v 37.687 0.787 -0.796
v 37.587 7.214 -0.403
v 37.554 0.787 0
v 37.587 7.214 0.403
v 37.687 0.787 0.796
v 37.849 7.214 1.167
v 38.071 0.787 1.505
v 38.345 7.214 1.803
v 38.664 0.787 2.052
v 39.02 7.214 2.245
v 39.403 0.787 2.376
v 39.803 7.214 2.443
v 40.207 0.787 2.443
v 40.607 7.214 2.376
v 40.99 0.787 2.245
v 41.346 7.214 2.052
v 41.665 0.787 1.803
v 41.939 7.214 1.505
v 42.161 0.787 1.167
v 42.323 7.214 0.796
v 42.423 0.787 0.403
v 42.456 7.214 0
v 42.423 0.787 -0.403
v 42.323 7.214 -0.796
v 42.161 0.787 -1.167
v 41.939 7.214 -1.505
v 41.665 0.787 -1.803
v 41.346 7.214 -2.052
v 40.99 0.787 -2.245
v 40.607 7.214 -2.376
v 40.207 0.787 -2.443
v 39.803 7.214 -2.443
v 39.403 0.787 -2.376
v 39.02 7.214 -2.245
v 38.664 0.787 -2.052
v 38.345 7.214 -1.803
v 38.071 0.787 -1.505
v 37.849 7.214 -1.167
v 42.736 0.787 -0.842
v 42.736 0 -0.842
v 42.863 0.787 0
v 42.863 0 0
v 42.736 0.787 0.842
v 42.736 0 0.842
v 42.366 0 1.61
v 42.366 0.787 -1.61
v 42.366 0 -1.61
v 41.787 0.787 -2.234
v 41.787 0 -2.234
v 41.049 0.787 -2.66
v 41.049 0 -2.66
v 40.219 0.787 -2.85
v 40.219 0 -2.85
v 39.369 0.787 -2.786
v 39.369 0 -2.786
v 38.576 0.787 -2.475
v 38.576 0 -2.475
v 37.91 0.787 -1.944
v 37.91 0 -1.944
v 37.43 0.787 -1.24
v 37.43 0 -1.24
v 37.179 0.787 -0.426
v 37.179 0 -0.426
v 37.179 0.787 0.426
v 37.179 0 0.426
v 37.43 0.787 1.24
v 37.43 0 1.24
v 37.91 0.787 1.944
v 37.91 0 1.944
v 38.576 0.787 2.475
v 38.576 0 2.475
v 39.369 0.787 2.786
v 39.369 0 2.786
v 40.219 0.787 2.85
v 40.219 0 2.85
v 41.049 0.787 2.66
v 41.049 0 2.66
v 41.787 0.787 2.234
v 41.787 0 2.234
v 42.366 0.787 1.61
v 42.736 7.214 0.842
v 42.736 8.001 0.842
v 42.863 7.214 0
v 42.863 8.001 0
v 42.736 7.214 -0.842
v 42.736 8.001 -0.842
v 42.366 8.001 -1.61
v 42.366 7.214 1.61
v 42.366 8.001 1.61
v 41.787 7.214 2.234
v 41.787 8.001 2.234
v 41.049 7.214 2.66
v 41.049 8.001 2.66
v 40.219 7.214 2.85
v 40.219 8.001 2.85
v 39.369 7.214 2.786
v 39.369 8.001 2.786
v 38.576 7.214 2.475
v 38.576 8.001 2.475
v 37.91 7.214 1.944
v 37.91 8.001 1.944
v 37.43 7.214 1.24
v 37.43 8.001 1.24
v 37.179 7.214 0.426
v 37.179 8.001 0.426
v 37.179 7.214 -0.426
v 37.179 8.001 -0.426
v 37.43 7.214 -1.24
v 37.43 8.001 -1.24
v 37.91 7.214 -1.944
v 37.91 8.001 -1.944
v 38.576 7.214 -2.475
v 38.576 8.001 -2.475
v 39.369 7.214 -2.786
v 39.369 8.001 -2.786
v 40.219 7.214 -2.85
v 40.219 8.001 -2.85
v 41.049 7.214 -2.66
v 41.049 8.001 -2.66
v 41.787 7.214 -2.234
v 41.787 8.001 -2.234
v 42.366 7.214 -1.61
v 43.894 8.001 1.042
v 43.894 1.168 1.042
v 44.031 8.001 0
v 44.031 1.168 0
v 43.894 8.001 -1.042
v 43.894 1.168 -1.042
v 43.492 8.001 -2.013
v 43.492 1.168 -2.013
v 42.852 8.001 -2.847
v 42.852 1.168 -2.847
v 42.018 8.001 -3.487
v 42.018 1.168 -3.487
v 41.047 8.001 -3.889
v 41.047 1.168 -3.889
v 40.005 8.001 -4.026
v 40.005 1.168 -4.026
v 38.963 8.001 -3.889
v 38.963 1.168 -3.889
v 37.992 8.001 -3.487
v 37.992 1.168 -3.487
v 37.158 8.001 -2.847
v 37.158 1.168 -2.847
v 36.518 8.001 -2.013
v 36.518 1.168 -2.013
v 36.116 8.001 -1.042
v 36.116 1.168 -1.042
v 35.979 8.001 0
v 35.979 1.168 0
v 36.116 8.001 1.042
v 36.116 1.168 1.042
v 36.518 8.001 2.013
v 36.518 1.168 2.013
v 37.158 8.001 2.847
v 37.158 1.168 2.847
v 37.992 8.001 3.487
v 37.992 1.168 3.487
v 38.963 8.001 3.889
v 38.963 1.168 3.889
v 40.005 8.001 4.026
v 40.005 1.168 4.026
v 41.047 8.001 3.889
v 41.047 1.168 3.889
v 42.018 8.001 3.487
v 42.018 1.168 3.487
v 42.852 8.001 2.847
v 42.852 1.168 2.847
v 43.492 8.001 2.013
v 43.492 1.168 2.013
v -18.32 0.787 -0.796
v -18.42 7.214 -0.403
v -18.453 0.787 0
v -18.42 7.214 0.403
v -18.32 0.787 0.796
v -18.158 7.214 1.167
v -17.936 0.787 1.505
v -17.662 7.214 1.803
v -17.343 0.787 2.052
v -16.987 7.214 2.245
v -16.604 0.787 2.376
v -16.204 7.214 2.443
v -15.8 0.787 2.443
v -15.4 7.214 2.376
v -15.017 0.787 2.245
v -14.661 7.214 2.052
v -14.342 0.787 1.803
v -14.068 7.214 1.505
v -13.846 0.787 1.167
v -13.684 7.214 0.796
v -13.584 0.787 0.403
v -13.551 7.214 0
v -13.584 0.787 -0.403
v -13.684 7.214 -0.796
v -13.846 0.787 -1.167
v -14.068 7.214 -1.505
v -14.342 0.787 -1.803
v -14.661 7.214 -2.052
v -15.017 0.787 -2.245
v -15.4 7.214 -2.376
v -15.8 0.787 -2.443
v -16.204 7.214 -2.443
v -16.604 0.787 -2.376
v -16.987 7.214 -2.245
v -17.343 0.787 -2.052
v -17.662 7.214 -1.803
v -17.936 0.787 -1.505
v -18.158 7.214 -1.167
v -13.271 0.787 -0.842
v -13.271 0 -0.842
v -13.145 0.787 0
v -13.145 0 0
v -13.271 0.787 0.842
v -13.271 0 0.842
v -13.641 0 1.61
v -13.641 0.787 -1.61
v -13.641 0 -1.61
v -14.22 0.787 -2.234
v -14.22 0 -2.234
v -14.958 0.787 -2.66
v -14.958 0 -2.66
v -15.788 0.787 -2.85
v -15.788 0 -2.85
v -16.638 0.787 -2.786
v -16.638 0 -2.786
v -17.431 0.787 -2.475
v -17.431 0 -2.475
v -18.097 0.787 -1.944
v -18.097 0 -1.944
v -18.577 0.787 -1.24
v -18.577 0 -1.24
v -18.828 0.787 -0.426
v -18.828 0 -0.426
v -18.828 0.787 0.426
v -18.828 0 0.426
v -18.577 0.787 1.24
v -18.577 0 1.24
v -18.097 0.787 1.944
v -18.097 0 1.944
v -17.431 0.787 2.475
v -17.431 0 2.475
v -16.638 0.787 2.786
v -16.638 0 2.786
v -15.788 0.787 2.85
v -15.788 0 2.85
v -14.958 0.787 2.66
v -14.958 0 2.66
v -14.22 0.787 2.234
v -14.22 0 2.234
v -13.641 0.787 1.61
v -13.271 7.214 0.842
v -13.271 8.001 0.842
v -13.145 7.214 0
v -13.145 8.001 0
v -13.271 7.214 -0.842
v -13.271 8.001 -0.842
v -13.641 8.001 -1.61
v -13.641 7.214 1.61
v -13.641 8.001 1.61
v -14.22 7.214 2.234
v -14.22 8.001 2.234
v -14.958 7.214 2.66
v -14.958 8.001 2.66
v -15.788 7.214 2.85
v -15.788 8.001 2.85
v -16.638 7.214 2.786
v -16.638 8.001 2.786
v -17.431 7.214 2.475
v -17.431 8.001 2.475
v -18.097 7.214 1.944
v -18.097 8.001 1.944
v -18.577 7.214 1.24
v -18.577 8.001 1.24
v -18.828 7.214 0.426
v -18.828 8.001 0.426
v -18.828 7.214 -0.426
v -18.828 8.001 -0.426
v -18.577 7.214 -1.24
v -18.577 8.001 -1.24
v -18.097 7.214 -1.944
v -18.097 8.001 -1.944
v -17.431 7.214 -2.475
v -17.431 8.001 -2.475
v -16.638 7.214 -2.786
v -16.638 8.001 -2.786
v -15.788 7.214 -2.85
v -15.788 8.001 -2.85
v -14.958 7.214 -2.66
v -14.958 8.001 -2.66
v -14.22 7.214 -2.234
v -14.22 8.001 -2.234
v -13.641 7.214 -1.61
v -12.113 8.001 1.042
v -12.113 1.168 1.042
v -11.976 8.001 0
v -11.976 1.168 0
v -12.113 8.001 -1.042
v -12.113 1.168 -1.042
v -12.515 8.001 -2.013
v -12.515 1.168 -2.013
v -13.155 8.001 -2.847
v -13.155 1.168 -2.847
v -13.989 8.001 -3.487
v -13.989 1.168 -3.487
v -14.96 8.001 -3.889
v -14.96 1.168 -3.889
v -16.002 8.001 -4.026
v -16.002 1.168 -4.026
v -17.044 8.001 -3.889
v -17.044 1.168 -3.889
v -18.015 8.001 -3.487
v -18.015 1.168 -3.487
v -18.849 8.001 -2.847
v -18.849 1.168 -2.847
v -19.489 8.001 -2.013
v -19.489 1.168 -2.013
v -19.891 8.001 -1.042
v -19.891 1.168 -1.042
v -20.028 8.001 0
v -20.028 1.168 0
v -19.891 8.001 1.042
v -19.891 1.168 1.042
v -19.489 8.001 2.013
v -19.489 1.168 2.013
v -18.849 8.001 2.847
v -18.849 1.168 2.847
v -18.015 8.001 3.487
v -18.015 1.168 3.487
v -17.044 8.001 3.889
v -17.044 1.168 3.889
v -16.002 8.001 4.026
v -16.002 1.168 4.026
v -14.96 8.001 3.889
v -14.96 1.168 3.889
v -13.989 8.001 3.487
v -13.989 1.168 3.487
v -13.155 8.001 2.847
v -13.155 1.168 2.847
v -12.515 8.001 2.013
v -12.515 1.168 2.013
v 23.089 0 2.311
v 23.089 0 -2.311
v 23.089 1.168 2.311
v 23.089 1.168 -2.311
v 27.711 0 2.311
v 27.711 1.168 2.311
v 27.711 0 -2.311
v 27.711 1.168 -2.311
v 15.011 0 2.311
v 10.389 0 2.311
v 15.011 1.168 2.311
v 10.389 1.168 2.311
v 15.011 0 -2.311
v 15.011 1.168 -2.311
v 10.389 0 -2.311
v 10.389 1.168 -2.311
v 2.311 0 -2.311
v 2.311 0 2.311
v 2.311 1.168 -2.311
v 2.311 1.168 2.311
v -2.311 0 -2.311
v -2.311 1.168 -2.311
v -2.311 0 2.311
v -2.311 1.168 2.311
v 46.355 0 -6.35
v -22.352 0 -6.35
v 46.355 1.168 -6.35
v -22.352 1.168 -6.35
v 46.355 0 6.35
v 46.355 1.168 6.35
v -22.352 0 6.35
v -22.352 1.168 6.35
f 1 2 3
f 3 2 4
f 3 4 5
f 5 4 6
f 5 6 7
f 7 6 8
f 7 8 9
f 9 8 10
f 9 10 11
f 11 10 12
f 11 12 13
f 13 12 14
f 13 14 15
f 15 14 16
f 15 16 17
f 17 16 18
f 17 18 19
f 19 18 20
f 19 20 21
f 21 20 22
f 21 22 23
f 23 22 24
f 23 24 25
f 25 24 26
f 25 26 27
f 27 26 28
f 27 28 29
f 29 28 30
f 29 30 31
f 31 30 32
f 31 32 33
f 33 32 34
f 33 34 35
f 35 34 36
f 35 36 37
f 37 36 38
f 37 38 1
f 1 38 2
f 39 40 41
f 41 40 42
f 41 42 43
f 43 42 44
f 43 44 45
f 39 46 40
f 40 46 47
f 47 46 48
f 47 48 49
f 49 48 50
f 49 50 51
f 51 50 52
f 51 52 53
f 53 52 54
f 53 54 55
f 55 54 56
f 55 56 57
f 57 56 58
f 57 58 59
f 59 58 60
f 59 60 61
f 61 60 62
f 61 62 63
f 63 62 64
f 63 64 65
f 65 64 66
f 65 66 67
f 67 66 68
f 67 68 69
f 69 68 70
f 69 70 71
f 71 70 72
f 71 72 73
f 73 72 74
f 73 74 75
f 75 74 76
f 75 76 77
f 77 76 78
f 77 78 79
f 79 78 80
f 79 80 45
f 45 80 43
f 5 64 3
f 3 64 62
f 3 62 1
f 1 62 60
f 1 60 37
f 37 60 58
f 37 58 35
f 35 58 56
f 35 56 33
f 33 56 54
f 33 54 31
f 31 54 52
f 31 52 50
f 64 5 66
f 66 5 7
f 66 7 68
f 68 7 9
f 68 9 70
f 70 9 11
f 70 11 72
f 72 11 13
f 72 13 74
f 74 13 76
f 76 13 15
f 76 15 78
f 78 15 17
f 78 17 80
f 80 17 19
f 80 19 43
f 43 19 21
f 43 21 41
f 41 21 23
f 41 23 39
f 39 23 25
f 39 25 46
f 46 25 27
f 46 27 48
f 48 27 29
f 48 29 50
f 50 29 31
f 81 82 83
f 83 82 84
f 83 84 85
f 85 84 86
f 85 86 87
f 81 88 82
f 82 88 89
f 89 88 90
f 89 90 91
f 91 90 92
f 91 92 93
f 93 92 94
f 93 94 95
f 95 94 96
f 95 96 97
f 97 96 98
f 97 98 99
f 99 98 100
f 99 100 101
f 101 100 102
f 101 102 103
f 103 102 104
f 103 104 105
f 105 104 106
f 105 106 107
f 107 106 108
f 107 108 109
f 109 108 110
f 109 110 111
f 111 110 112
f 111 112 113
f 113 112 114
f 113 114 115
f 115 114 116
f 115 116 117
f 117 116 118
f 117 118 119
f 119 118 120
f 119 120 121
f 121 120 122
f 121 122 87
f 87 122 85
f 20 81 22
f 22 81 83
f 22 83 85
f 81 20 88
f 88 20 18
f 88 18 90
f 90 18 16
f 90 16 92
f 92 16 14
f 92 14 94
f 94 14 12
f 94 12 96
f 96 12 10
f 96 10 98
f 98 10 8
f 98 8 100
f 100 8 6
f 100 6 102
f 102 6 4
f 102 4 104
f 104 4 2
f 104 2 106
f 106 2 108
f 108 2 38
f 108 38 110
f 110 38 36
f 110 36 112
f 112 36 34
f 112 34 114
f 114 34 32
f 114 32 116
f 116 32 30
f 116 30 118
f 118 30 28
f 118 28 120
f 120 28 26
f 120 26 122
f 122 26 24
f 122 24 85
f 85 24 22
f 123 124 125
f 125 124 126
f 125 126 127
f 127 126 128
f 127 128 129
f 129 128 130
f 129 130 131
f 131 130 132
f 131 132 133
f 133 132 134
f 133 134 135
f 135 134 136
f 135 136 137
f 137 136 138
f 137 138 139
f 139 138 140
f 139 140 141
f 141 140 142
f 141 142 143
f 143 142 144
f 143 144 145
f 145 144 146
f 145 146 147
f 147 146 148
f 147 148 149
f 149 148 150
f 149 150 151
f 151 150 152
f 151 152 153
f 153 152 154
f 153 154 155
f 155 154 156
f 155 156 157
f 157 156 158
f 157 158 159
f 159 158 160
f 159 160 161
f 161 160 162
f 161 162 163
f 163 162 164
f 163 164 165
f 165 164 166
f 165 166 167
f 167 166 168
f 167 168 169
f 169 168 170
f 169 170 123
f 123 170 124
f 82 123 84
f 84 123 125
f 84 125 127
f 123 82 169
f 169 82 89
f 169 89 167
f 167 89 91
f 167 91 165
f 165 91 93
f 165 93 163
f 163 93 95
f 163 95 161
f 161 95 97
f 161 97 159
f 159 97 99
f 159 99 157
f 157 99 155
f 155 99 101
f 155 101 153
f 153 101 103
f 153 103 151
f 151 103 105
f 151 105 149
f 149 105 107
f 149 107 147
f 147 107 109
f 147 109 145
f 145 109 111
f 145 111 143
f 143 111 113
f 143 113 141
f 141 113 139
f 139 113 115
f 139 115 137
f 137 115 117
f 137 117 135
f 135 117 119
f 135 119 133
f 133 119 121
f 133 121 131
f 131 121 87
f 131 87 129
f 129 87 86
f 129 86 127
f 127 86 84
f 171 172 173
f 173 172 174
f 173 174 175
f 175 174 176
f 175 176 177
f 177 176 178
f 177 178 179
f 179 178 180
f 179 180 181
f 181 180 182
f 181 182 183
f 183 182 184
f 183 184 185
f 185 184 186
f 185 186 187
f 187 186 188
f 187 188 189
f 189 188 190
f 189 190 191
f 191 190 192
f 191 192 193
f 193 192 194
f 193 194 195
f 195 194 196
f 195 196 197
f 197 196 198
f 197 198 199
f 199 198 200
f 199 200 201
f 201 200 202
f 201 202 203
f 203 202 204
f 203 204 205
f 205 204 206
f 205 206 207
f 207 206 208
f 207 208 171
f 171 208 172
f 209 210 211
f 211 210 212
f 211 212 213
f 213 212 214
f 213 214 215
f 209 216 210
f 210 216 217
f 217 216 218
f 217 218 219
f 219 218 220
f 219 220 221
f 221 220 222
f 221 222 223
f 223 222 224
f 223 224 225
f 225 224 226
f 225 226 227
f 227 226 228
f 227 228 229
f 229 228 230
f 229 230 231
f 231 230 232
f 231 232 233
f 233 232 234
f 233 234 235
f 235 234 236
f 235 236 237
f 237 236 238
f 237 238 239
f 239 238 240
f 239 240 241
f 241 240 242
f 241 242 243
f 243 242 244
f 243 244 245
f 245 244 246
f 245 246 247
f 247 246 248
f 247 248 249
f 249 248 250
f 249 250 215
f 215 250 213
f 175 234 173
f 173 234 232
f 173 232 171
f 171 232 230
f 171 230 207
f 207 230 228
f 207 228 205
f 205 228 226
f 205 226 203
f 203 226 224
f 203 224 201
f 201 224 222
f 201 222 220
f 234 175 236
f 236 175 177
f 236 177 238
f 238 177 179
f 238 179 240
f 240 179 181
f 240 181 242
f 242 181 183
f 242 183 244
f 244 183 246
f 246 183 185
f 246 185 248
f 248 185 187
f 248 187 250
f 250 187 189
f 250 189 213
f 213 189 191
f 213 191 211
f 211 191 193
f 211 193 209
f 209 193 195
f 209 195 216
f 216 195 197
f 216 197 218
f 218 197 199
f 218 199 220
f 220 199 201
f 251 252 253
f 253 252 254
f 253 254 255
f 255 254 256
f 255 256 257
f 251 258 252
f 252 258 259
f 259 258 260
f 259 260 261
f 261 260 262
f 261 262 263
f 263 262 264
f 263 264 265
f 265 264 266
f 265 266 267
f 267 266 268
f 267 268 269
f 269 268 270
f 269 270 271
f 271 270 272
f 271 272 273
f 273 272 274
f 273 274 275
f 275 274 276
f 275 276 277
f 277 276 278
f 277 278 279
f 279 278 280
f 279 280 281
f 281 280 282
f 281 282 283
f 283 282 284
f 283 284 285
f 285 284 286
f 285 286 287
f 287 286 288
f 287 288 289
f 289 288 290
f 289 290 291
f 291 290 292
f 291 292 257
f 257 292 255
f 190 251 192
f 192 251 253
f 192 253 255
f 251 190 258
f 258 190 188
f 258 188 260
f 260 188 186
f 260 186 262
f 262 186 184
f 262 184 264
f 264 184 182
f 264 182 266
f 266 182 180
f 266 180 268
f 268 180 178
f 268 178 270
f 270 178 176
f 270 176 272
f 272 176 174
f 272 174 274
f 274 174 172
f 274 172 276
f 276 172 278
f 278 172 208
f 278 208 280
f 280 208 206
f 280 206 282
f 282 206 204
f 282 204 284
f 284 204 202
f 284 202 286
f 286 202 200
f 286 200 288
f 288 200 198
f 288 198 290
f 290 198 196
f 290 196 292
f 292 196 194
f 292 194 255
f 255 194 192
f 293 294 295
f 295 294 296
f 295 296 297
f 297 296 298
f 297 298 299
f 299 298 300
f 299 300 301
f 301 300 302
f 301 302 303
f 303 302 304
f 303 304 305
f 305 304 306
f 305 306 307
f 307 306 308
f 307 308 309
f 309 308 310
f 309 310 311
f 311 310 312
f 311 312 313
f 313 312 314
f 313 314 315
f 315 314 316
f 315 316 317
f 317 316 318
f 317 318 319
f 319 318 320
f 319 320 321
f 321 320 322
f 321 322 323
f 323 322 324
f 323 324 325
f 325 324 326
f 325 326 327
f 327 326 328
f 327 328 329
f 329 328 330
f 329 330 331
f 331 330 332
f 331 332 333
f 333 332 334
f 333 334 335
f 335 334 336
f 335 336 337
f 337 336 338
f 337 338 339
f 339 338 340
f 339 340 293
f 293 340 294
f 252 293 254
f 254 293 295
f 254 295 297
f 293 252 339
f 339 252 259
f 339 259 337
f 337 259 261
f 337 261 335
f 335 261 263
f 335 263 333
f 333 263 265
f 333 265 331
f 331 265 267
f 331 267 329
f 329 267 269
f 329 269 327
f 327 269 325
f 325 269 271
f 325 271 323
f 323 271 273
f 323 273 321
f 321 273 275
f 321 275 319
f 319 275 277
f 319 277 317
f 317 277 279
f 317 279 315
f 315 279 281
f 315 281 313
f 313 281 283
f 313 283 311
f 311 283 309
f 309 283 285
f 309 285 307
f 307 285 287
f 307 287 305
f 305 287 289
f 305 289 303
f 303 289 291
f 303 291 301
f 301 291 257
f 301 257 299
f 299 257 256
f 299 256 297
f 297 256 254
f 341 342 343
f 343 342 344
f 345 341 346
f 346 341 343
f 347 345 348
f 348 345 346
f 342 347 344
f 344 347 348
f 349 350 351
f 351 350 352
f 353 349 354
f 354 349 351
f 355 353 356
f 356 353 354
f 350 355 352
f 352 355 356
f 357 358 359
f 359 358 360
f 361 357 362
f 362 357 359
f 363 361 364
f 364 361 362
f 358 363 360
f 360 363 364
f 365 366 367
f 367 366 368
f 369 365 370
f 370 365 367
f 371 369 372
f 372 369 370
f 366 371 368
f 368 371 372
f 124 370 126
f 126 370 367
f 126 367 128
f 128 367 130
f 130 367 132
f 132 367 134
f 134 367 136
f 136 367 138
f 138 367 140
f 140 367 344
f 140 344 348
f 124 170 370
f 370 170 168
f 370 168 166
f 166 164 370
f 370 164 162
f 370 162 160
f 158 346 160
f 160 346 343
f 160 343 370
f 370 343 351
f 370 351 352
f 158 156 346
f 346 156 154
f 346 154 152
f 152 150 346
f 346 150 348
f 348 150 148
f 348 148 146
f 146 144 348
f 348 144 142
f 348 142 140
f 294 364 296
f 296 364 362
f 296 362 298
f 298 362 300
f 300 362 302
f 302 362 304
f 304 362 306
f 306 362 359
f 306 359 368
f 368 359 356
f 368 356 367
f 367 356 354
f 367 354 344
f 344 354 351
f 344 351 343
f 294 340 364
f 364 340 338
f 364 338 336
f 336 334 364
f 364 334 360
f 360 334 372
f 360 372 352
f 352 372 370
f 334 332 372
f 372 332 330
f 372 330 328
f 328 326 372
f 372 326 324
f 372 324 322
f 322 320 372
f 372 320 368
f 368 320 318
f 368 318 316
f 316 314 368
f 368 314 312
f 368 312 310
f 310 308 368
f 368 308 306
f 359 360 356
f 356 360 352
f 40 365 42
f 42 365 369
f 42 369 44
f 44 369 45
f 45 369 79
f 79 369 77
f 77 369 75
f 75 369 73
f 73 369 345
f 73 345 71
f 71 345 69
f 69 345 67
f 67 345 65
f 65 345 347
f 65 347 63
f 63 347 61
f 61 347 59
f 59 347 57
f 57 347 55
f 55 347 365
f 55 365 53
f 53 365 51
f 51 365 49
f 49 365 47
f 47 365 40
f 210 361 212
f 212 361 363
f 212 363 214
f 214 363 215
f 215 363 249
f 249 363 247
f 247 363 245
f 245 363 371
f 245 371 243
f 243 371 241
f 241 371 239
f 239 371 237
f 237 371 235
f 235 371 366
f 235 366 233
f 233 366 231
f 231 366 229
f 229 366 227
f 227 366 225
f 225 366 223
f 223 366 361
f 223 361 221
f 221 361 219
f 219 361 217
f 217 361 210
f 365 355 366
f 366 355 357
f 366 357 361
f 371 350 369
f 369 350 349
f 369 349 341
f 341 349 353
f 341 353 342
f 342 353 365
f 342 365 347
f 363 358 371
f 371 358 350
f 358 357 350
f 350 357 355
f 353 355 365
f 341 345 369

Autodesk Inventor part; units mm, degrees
ref_plane "YZ Plane" through (0, 0, 0) normal (1, 0, 0) x (0, 1, 0)
ref_plane "XZ Plane" through (0, 0, 0) normal (0, 1, 0) x (-1, 0, 0)
ref_plane "XY Plane" through (0, 0, 0) normal (0, 0, 1) x (1, 0, 0)
sketch "Sketch1" plane through (0, 0, 0) normal (0, 1, 0) x (-1, 0, 0)
  line L0 (22.352, 6.35) -> (-46.355, 6.35)
  line L1 (-46.355, 6.35) -> (-46.355, -6.35)
  line L2 (-46.355, -6.35) -> (22.352, -6.35)
  line L3 (22.352, -6.35) -> (22.352, 6.35)
  line L4 (-2.3114, -2.3114) -> (2.3114, -2.3114)
  line L5 (2.3114, -2.3114) -> (2.3114, 2.3114)
  line L6 (2.3114, 2.3114) -> (-2.3114, 2.3114)
  line L7 (-2.3114, 2.3114) -> (-2.3114, -2.3114)
  line L8 (-2.3114, -2.3114) -> (2.3114, 2.3114) construction
  line L9 (2.3114, -2.3114) -> (-2.3114, 2.3114) construction
  line L10 (-10.3886, 2.3114) -> (-15.0114, 2.3114)
  line L11 (-15.0114, 2.3114) -> (-15.0114, -2.3114)
  line L12 (-15.0114, -2.3114) -> (-10.3886, -2.3114)
  line L13 (-10.3886, -2.3114) -> (-10.3886, 2.3114)
  line L14 (-10.3886, 2.3114) -> (-15.0114, -2.3114) construction
  line L15 (-15.0114, 2.3114) -> (-10.3886, -2.3114) construction
  line L16 (-23.0886, 2.3114) -> (-27.7114, 2.3114)
  line L17 (-27.7114, 2.3114) -> (-27.7114, -2.3114)
  line L18 (-27.7114, -2.3114) -> (-23.0886, -2.3114)
  line L19 (-23.0886, -2.3114) -> (-23.0886, 2.3114)
  line L20 (-23.0886, 2.3114) -> (-27.7114, -2.3114) construction
  line L21 (-27.7114, 2.3114) -> (-23.0886, -2.3114) construction
  point P0 (0, 0)
  point P1 (-12.7, 0)
  point P2 (-25.4, 0)
  dimension "d0" = 68.707
  dimension "d1" = 12.7
  dimension "d2" = 4.6228
  dimension "d3" = 4.6228
  dimension "d4" = 4.6228
  dimension "d5" = 4.6228
  dimension "d6" = 12.7
  dimension "d7" = 12.7
  dimension "d8" = 6.35
  dimension "d9" = 22.352
extrude "Extrusion1" add sketch "Sketch1" along normal blind 1.1684
sketch "Sketch2" plane through (0, 1.1684, 0) normal (0, 1, 0) x (1, 0, 0)
  line L0 (-22.352, 6.35) -> (-22.352, -6.35) projected
  circle A0 centre (-16.002, 0) radius 4.0259
  point P0 (0, 0)
  dimension "d12" = 6.35
  dimension "d13" = 8.0518
extrude "Extrusion2" add sketch "Sketch2" along normal blind 6.8326
sketch "Sketch3" plane through (-16.002, 8.001, 0) normal (0, 1, 0) x (1, 0, 0)
  circle A0 centre (0, 0) radius 2.8575
  point P0 (16.002, 0)
  dimension "d16" = 5.715
extrude "Extrusion3" cut sketch "Sketch3" against normal blind 0.7874
sketch "Sketch4" plane through (0, 0, 0) normal (0, -1, 0) x (1, 0, 0)
  circle A0 centre (-16.002, 0) radius 2.8575 projected
  circle A1 centre (-16.002, 0) radius 2.8575
  point P0 (0, 0)
extrude "Extrusion4" cut sketch "Sketch4" against normal blind 0.7874
sketch "Sketch5" plane through (-16.002, 7.2136, 0) normal (0, 1, 0) x (1, 0, 0)
  circle A0 centre (0, 0) radius 2.4511
  point P0 (16.002, 0)
  dimension "d21" = 4.9022
extrude "Extrusion5" cut sketch "Sketch5" against normal through all
sketch "Sketch6" plane through (0, 1.1684, 0) normal (0, 1, 0) x (1, 0, 0)
  line L0 (46.355, -6.35) -> (46.355, 6.35) projected
  circle A0 centre (40.005, 0) radius 4.0259
  point P0 (0, 0)
  dimension "d24" = 6.35
  dimension "d25" = 8.0518
extrude "Extrusion6" add sketch "Sketch6" along normal blind 6.8326
sketch "Sketch7" plane through (40.005, 8.001, 0) normal (0, 1, 0) x (1, 0, 0)
  circle A0 centre (0, 0) radius 2.8575
  point P0 (-40.005, 0)
  dimension "d28" = 5.715
extrude "Extrusion7" cut sketch "Sketch7" against normal blind 0.7874
sketch "Sketch8" plane through (0, 0, 0) normal (0, -1, 0) x (1, 0, 0)
  circle A0 centre (40.005, 0) radius 2.8575 projected
  circle A1 centre (40.005, 0) radius 2.8575
  point P0 (0, 0)
extrude "Extrusion8" cut sketch "Sketch8" against normal blind 0.7874
sketch "Sketch9" plane through (40.005, 7.2136, 0) normal (0, 1, 0) x (1, 0, 0)
  circle A0 centre (0, 0) radius 2.4511
  point P0 (-40.005, 0)
  dimension "d33" = 4.9022
extrude "Extrusion9" cut sketch "Sketch9" against normal through all
properties part number "VexLegoMount"
